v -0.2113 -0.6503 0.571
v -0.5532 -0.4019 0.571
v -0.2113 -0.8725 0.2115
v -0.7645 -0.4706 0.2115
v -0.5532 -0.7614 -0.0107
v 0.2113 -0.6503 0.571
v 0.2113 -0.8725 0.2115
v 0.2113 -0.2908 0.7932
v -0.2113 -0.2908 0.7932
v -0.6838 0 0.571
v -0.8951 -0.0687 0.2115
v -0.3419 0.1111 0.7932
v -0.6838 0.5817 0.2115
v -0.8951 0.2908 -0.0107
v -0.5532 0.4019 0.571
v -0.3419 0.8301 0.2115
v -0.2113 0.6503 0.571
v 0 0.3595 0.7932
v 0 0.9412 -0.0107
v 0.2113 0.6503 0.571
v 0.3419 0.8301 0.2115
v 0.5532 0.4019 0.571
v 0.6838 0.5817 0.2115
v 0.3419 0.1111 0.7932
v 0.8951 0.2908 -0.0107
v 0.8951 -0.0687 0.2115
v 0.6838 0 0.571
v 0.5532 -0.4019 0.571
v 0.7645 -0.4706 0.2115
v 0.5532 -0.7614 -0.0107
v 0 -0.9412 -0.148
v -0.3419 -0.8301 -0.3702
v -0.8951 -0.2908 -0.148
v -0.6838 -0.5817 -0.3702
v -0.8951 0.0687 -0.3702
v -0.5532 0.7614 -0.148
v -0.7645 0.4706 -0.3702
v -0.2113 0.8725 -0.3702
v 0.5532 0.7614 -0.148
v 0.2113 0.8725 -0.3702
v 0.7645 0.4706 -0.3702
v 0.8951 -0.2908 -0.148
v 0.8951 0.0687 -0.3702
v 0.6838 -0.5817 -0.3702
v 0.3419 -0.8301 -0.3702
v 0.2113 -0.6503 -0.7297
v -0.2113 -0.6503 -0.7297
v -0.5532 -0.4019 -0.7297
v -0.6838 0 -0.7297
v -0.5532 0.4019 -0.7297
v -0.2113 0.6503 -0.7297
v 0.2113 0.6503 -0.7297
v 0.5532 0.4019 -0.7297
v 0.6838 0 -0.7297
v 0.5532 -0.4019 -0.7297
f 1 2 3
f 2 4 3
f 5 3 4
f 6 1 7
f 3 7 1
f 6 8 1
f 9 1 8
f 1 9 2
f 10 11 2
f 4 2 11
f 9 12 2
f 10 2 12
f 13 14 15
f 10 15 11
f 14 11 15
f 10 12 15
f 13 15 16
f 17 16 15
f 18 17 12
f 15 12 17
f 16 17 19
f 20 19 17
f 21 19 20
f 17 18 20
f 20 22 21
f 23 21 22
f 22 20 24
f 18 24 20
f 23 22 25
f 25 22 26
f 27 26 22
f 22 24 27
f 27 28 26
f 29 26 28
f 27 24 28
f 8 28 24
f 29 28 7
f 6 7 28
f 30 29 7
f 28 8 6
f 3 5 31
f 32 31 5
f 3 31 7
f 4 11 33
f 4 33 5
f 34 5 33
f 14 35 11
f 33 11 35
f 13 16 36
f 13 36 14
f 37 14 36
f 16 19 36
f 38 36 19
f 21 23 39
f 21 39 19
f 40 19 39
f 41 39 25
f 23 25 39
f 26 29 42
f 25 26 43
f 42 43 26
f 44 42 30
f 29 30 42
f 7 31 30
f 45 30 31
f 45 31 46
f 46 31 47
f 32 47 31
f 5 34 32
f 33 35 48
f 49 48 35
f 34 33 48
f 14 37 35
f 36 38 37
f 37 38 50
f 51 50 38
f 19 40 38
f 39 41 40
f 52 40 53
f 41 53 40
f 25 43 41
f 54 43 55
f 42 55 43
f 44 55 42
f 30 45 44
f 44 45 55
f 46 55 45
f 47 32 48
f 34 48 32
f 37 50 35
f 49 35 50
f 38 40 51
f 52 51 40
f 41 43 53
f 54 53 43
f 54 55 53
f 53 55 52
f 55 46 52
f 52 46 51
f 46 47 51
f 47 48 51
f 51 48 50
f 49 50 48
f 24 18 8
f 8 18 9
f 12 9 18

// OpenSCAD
polyhedron( points = [[-0.211308552818882, -0.65034085364632, 0.571020506656722], [-0.553212972984412, -0.401932751845523, 0.571020506656722], [-0.683808840496803, -1.83045978384782e-10, 0.571020506656722], [-0.553212972876144, 0.401932751444251, 0.571020506656722], [-0.211308552760493, 0.650340853114997, 0.571020506656722], [0.211308552277013, 0.650340853077046, 0.571020506656722], [0.553212972348058, 0.401932751344902, 0.571020506656722], [0.683808839896537, -3.0585005866953e-10, 0.571020506656722], [0.553212972311971, -0.401932751944875, 0.571020506656722], [0.211308552218628, -0.65034085364632, 0.571020506656722], [-0.211308552799907, -0.872523814487377, 0.21152092465257], [-0.764521525489685, -0.470591062728418, 0.211520924644237], [-0.895117392964903, -0.0686583108487801, 0.211520924597651], [-0.683808840345494, 0.581682542481204, 0.211520924630354], [-0.341904420292823, 0.830090644083212, 0.211520924597651], [0.341904419895781, 0.830090644005454, 0.211520924630355], [0.683808839881986, 0.581682542311967, 0.211520924597651], [0.895117392353497, -0.0686583110660729, 0.211520924630354], [0.764521524779475, -0.470591062612468, 0.211520924597651], [0.211308552171911, -0.872523814472791, 0.211520924676169], [-4.05046121103249e-10, -0.941182124626436, -0.147978657518774], [-0.553212973013867, -0.761432334136523, -0.0106620359233469], [-0.89511739225606, -0.290841270966713, -0.147978657776557], [-0.895117392874476, 0.290841271201951, -0.010662036055343], [-0.553212973245139, 0.76143233375645, -0.147978657207191], [-1.54136220254483e-10, 0.941182124333854, -0.010662036055343], [0.553212972522405, 0.761432333845441, -0.147978657207191], [0.895117392364447, 0.290841270924262, -0.010662036055343], [0.895117392904378, -0.290841271635035, -0.147978657207191], [0.553212972202927, -0.761432333931818, -0.010662036055343], [0.341904419537592, -0.830090643649392, -0.370161618098281], [-0.341904420606195, -0.830090644279745, -0.370161617920836], [-0.6838088398346, -0.5816825423, -0.370161618069184], [-0.895117390178445, 0.0686583112328505, -0.370161617811975], [-0.764521525777039, 0.470591062473178, -0.37016161803073], [-0.211308553551977, 0.872523814894027, -0.370161618124884], [0.211308552467765, 0.872523814175375, -0.37016161803073], [0.764521525710724, 0.47059106315554, -0.370161618124884], [0.895117392915328, 0.0686583103602687, -0.37016161803073], [0.683808841209596, -0.581682543410057, -0.370161618124884], [-0.211308553288313, -0.650340852620801, -0.729661199684099], [-0.553212970206877, -0.40193275123742, -0.729661199287532], [-0.683808836544361, 8.06807800602282e-10, -0.729661199094628], [-0.553212973596086, 0.401932752657411, -0.729661200486023], [-0.211308553827259, 0.650340854805525, -0.729661200510273], [0.211308553208338, 0.650340854136661, -0.729661200486027], [0.553212973626209, 0.401932752881884, -0.729661200510277], [0.683808841192074, -8.6413991269173e-10, -0.729661200486023], [0.553212974168684, -0.401932752685503, -0.729661200510273], [0.211308551749197, -0.650340852214251, -0.729661199827704], [-0.211308552424187, -0.290841271410764, 0.793203466969228], [0.211308552199649, -0.290841271569127, 0.79320346720187], [0.341904419754766, 0.111091480020927, 0.79320346720187], [-2.78807431997327e-10, 0.359499581709934, 0.793203467201871], [-0.341904419976515, 0.111091480090185, 0.793203466914903]], faces = [[0, 1, 11, 21, 10], [0, 10, 19, 9], [0, 9, 51, 50], [0, 50, 1], [1, 2, 12, 11], [1, 50, 54, 2], [2, 3, 13, 23, 12], [2, 54, 3], [3, 4, 14, 13], [3, 54, 53, 4], [4, 5, 15, 25, 14], [4, 53, 5], [5, 6, 16, 15], [5, 53, 52, 6], [6, 7, 17, 27, 16], [6, 52, 7], [7, 8, 18, 17], [7, 52, 51, 8], [8, 9, 19, 29, 18], [8, 51, 9], [10, 21, 31, 20], [10, 20, 19], [11, 12, 22], [11, 22, 32, 21], [12, 23, 33, 22], [13, 14, 24], [13, 24, 34, 23], [14, 25, 35, 24], [15, 16, 26], [15, 26, 36, 25], [16, 27, 37, 26], [17, 18, 28], [17, 28, 38, 27], [18, 29, 39, 28], [19, 20, 30, 29], [20, 31, 40, 49, 30], [21, 32, 31], [22, 33, 42, 41, 32], [23, 34, 33], [24, 35, 44, 43, 34], [25, 36, 35], [26, 37, 46, 45, 36], [27, 38, 37], [28, 39, 48, 47, 38], [29, 30, 39], [30, 49, 48, 39], [31, 32, 41, 40], [33, 34, 43, 42], [35, 36, 45, 44], [37, 38, 47, 46], [40, 41, 42, 43, 44, 45, 46, 47, 48, 49], [50, 51, 52, 53, 54]]);
